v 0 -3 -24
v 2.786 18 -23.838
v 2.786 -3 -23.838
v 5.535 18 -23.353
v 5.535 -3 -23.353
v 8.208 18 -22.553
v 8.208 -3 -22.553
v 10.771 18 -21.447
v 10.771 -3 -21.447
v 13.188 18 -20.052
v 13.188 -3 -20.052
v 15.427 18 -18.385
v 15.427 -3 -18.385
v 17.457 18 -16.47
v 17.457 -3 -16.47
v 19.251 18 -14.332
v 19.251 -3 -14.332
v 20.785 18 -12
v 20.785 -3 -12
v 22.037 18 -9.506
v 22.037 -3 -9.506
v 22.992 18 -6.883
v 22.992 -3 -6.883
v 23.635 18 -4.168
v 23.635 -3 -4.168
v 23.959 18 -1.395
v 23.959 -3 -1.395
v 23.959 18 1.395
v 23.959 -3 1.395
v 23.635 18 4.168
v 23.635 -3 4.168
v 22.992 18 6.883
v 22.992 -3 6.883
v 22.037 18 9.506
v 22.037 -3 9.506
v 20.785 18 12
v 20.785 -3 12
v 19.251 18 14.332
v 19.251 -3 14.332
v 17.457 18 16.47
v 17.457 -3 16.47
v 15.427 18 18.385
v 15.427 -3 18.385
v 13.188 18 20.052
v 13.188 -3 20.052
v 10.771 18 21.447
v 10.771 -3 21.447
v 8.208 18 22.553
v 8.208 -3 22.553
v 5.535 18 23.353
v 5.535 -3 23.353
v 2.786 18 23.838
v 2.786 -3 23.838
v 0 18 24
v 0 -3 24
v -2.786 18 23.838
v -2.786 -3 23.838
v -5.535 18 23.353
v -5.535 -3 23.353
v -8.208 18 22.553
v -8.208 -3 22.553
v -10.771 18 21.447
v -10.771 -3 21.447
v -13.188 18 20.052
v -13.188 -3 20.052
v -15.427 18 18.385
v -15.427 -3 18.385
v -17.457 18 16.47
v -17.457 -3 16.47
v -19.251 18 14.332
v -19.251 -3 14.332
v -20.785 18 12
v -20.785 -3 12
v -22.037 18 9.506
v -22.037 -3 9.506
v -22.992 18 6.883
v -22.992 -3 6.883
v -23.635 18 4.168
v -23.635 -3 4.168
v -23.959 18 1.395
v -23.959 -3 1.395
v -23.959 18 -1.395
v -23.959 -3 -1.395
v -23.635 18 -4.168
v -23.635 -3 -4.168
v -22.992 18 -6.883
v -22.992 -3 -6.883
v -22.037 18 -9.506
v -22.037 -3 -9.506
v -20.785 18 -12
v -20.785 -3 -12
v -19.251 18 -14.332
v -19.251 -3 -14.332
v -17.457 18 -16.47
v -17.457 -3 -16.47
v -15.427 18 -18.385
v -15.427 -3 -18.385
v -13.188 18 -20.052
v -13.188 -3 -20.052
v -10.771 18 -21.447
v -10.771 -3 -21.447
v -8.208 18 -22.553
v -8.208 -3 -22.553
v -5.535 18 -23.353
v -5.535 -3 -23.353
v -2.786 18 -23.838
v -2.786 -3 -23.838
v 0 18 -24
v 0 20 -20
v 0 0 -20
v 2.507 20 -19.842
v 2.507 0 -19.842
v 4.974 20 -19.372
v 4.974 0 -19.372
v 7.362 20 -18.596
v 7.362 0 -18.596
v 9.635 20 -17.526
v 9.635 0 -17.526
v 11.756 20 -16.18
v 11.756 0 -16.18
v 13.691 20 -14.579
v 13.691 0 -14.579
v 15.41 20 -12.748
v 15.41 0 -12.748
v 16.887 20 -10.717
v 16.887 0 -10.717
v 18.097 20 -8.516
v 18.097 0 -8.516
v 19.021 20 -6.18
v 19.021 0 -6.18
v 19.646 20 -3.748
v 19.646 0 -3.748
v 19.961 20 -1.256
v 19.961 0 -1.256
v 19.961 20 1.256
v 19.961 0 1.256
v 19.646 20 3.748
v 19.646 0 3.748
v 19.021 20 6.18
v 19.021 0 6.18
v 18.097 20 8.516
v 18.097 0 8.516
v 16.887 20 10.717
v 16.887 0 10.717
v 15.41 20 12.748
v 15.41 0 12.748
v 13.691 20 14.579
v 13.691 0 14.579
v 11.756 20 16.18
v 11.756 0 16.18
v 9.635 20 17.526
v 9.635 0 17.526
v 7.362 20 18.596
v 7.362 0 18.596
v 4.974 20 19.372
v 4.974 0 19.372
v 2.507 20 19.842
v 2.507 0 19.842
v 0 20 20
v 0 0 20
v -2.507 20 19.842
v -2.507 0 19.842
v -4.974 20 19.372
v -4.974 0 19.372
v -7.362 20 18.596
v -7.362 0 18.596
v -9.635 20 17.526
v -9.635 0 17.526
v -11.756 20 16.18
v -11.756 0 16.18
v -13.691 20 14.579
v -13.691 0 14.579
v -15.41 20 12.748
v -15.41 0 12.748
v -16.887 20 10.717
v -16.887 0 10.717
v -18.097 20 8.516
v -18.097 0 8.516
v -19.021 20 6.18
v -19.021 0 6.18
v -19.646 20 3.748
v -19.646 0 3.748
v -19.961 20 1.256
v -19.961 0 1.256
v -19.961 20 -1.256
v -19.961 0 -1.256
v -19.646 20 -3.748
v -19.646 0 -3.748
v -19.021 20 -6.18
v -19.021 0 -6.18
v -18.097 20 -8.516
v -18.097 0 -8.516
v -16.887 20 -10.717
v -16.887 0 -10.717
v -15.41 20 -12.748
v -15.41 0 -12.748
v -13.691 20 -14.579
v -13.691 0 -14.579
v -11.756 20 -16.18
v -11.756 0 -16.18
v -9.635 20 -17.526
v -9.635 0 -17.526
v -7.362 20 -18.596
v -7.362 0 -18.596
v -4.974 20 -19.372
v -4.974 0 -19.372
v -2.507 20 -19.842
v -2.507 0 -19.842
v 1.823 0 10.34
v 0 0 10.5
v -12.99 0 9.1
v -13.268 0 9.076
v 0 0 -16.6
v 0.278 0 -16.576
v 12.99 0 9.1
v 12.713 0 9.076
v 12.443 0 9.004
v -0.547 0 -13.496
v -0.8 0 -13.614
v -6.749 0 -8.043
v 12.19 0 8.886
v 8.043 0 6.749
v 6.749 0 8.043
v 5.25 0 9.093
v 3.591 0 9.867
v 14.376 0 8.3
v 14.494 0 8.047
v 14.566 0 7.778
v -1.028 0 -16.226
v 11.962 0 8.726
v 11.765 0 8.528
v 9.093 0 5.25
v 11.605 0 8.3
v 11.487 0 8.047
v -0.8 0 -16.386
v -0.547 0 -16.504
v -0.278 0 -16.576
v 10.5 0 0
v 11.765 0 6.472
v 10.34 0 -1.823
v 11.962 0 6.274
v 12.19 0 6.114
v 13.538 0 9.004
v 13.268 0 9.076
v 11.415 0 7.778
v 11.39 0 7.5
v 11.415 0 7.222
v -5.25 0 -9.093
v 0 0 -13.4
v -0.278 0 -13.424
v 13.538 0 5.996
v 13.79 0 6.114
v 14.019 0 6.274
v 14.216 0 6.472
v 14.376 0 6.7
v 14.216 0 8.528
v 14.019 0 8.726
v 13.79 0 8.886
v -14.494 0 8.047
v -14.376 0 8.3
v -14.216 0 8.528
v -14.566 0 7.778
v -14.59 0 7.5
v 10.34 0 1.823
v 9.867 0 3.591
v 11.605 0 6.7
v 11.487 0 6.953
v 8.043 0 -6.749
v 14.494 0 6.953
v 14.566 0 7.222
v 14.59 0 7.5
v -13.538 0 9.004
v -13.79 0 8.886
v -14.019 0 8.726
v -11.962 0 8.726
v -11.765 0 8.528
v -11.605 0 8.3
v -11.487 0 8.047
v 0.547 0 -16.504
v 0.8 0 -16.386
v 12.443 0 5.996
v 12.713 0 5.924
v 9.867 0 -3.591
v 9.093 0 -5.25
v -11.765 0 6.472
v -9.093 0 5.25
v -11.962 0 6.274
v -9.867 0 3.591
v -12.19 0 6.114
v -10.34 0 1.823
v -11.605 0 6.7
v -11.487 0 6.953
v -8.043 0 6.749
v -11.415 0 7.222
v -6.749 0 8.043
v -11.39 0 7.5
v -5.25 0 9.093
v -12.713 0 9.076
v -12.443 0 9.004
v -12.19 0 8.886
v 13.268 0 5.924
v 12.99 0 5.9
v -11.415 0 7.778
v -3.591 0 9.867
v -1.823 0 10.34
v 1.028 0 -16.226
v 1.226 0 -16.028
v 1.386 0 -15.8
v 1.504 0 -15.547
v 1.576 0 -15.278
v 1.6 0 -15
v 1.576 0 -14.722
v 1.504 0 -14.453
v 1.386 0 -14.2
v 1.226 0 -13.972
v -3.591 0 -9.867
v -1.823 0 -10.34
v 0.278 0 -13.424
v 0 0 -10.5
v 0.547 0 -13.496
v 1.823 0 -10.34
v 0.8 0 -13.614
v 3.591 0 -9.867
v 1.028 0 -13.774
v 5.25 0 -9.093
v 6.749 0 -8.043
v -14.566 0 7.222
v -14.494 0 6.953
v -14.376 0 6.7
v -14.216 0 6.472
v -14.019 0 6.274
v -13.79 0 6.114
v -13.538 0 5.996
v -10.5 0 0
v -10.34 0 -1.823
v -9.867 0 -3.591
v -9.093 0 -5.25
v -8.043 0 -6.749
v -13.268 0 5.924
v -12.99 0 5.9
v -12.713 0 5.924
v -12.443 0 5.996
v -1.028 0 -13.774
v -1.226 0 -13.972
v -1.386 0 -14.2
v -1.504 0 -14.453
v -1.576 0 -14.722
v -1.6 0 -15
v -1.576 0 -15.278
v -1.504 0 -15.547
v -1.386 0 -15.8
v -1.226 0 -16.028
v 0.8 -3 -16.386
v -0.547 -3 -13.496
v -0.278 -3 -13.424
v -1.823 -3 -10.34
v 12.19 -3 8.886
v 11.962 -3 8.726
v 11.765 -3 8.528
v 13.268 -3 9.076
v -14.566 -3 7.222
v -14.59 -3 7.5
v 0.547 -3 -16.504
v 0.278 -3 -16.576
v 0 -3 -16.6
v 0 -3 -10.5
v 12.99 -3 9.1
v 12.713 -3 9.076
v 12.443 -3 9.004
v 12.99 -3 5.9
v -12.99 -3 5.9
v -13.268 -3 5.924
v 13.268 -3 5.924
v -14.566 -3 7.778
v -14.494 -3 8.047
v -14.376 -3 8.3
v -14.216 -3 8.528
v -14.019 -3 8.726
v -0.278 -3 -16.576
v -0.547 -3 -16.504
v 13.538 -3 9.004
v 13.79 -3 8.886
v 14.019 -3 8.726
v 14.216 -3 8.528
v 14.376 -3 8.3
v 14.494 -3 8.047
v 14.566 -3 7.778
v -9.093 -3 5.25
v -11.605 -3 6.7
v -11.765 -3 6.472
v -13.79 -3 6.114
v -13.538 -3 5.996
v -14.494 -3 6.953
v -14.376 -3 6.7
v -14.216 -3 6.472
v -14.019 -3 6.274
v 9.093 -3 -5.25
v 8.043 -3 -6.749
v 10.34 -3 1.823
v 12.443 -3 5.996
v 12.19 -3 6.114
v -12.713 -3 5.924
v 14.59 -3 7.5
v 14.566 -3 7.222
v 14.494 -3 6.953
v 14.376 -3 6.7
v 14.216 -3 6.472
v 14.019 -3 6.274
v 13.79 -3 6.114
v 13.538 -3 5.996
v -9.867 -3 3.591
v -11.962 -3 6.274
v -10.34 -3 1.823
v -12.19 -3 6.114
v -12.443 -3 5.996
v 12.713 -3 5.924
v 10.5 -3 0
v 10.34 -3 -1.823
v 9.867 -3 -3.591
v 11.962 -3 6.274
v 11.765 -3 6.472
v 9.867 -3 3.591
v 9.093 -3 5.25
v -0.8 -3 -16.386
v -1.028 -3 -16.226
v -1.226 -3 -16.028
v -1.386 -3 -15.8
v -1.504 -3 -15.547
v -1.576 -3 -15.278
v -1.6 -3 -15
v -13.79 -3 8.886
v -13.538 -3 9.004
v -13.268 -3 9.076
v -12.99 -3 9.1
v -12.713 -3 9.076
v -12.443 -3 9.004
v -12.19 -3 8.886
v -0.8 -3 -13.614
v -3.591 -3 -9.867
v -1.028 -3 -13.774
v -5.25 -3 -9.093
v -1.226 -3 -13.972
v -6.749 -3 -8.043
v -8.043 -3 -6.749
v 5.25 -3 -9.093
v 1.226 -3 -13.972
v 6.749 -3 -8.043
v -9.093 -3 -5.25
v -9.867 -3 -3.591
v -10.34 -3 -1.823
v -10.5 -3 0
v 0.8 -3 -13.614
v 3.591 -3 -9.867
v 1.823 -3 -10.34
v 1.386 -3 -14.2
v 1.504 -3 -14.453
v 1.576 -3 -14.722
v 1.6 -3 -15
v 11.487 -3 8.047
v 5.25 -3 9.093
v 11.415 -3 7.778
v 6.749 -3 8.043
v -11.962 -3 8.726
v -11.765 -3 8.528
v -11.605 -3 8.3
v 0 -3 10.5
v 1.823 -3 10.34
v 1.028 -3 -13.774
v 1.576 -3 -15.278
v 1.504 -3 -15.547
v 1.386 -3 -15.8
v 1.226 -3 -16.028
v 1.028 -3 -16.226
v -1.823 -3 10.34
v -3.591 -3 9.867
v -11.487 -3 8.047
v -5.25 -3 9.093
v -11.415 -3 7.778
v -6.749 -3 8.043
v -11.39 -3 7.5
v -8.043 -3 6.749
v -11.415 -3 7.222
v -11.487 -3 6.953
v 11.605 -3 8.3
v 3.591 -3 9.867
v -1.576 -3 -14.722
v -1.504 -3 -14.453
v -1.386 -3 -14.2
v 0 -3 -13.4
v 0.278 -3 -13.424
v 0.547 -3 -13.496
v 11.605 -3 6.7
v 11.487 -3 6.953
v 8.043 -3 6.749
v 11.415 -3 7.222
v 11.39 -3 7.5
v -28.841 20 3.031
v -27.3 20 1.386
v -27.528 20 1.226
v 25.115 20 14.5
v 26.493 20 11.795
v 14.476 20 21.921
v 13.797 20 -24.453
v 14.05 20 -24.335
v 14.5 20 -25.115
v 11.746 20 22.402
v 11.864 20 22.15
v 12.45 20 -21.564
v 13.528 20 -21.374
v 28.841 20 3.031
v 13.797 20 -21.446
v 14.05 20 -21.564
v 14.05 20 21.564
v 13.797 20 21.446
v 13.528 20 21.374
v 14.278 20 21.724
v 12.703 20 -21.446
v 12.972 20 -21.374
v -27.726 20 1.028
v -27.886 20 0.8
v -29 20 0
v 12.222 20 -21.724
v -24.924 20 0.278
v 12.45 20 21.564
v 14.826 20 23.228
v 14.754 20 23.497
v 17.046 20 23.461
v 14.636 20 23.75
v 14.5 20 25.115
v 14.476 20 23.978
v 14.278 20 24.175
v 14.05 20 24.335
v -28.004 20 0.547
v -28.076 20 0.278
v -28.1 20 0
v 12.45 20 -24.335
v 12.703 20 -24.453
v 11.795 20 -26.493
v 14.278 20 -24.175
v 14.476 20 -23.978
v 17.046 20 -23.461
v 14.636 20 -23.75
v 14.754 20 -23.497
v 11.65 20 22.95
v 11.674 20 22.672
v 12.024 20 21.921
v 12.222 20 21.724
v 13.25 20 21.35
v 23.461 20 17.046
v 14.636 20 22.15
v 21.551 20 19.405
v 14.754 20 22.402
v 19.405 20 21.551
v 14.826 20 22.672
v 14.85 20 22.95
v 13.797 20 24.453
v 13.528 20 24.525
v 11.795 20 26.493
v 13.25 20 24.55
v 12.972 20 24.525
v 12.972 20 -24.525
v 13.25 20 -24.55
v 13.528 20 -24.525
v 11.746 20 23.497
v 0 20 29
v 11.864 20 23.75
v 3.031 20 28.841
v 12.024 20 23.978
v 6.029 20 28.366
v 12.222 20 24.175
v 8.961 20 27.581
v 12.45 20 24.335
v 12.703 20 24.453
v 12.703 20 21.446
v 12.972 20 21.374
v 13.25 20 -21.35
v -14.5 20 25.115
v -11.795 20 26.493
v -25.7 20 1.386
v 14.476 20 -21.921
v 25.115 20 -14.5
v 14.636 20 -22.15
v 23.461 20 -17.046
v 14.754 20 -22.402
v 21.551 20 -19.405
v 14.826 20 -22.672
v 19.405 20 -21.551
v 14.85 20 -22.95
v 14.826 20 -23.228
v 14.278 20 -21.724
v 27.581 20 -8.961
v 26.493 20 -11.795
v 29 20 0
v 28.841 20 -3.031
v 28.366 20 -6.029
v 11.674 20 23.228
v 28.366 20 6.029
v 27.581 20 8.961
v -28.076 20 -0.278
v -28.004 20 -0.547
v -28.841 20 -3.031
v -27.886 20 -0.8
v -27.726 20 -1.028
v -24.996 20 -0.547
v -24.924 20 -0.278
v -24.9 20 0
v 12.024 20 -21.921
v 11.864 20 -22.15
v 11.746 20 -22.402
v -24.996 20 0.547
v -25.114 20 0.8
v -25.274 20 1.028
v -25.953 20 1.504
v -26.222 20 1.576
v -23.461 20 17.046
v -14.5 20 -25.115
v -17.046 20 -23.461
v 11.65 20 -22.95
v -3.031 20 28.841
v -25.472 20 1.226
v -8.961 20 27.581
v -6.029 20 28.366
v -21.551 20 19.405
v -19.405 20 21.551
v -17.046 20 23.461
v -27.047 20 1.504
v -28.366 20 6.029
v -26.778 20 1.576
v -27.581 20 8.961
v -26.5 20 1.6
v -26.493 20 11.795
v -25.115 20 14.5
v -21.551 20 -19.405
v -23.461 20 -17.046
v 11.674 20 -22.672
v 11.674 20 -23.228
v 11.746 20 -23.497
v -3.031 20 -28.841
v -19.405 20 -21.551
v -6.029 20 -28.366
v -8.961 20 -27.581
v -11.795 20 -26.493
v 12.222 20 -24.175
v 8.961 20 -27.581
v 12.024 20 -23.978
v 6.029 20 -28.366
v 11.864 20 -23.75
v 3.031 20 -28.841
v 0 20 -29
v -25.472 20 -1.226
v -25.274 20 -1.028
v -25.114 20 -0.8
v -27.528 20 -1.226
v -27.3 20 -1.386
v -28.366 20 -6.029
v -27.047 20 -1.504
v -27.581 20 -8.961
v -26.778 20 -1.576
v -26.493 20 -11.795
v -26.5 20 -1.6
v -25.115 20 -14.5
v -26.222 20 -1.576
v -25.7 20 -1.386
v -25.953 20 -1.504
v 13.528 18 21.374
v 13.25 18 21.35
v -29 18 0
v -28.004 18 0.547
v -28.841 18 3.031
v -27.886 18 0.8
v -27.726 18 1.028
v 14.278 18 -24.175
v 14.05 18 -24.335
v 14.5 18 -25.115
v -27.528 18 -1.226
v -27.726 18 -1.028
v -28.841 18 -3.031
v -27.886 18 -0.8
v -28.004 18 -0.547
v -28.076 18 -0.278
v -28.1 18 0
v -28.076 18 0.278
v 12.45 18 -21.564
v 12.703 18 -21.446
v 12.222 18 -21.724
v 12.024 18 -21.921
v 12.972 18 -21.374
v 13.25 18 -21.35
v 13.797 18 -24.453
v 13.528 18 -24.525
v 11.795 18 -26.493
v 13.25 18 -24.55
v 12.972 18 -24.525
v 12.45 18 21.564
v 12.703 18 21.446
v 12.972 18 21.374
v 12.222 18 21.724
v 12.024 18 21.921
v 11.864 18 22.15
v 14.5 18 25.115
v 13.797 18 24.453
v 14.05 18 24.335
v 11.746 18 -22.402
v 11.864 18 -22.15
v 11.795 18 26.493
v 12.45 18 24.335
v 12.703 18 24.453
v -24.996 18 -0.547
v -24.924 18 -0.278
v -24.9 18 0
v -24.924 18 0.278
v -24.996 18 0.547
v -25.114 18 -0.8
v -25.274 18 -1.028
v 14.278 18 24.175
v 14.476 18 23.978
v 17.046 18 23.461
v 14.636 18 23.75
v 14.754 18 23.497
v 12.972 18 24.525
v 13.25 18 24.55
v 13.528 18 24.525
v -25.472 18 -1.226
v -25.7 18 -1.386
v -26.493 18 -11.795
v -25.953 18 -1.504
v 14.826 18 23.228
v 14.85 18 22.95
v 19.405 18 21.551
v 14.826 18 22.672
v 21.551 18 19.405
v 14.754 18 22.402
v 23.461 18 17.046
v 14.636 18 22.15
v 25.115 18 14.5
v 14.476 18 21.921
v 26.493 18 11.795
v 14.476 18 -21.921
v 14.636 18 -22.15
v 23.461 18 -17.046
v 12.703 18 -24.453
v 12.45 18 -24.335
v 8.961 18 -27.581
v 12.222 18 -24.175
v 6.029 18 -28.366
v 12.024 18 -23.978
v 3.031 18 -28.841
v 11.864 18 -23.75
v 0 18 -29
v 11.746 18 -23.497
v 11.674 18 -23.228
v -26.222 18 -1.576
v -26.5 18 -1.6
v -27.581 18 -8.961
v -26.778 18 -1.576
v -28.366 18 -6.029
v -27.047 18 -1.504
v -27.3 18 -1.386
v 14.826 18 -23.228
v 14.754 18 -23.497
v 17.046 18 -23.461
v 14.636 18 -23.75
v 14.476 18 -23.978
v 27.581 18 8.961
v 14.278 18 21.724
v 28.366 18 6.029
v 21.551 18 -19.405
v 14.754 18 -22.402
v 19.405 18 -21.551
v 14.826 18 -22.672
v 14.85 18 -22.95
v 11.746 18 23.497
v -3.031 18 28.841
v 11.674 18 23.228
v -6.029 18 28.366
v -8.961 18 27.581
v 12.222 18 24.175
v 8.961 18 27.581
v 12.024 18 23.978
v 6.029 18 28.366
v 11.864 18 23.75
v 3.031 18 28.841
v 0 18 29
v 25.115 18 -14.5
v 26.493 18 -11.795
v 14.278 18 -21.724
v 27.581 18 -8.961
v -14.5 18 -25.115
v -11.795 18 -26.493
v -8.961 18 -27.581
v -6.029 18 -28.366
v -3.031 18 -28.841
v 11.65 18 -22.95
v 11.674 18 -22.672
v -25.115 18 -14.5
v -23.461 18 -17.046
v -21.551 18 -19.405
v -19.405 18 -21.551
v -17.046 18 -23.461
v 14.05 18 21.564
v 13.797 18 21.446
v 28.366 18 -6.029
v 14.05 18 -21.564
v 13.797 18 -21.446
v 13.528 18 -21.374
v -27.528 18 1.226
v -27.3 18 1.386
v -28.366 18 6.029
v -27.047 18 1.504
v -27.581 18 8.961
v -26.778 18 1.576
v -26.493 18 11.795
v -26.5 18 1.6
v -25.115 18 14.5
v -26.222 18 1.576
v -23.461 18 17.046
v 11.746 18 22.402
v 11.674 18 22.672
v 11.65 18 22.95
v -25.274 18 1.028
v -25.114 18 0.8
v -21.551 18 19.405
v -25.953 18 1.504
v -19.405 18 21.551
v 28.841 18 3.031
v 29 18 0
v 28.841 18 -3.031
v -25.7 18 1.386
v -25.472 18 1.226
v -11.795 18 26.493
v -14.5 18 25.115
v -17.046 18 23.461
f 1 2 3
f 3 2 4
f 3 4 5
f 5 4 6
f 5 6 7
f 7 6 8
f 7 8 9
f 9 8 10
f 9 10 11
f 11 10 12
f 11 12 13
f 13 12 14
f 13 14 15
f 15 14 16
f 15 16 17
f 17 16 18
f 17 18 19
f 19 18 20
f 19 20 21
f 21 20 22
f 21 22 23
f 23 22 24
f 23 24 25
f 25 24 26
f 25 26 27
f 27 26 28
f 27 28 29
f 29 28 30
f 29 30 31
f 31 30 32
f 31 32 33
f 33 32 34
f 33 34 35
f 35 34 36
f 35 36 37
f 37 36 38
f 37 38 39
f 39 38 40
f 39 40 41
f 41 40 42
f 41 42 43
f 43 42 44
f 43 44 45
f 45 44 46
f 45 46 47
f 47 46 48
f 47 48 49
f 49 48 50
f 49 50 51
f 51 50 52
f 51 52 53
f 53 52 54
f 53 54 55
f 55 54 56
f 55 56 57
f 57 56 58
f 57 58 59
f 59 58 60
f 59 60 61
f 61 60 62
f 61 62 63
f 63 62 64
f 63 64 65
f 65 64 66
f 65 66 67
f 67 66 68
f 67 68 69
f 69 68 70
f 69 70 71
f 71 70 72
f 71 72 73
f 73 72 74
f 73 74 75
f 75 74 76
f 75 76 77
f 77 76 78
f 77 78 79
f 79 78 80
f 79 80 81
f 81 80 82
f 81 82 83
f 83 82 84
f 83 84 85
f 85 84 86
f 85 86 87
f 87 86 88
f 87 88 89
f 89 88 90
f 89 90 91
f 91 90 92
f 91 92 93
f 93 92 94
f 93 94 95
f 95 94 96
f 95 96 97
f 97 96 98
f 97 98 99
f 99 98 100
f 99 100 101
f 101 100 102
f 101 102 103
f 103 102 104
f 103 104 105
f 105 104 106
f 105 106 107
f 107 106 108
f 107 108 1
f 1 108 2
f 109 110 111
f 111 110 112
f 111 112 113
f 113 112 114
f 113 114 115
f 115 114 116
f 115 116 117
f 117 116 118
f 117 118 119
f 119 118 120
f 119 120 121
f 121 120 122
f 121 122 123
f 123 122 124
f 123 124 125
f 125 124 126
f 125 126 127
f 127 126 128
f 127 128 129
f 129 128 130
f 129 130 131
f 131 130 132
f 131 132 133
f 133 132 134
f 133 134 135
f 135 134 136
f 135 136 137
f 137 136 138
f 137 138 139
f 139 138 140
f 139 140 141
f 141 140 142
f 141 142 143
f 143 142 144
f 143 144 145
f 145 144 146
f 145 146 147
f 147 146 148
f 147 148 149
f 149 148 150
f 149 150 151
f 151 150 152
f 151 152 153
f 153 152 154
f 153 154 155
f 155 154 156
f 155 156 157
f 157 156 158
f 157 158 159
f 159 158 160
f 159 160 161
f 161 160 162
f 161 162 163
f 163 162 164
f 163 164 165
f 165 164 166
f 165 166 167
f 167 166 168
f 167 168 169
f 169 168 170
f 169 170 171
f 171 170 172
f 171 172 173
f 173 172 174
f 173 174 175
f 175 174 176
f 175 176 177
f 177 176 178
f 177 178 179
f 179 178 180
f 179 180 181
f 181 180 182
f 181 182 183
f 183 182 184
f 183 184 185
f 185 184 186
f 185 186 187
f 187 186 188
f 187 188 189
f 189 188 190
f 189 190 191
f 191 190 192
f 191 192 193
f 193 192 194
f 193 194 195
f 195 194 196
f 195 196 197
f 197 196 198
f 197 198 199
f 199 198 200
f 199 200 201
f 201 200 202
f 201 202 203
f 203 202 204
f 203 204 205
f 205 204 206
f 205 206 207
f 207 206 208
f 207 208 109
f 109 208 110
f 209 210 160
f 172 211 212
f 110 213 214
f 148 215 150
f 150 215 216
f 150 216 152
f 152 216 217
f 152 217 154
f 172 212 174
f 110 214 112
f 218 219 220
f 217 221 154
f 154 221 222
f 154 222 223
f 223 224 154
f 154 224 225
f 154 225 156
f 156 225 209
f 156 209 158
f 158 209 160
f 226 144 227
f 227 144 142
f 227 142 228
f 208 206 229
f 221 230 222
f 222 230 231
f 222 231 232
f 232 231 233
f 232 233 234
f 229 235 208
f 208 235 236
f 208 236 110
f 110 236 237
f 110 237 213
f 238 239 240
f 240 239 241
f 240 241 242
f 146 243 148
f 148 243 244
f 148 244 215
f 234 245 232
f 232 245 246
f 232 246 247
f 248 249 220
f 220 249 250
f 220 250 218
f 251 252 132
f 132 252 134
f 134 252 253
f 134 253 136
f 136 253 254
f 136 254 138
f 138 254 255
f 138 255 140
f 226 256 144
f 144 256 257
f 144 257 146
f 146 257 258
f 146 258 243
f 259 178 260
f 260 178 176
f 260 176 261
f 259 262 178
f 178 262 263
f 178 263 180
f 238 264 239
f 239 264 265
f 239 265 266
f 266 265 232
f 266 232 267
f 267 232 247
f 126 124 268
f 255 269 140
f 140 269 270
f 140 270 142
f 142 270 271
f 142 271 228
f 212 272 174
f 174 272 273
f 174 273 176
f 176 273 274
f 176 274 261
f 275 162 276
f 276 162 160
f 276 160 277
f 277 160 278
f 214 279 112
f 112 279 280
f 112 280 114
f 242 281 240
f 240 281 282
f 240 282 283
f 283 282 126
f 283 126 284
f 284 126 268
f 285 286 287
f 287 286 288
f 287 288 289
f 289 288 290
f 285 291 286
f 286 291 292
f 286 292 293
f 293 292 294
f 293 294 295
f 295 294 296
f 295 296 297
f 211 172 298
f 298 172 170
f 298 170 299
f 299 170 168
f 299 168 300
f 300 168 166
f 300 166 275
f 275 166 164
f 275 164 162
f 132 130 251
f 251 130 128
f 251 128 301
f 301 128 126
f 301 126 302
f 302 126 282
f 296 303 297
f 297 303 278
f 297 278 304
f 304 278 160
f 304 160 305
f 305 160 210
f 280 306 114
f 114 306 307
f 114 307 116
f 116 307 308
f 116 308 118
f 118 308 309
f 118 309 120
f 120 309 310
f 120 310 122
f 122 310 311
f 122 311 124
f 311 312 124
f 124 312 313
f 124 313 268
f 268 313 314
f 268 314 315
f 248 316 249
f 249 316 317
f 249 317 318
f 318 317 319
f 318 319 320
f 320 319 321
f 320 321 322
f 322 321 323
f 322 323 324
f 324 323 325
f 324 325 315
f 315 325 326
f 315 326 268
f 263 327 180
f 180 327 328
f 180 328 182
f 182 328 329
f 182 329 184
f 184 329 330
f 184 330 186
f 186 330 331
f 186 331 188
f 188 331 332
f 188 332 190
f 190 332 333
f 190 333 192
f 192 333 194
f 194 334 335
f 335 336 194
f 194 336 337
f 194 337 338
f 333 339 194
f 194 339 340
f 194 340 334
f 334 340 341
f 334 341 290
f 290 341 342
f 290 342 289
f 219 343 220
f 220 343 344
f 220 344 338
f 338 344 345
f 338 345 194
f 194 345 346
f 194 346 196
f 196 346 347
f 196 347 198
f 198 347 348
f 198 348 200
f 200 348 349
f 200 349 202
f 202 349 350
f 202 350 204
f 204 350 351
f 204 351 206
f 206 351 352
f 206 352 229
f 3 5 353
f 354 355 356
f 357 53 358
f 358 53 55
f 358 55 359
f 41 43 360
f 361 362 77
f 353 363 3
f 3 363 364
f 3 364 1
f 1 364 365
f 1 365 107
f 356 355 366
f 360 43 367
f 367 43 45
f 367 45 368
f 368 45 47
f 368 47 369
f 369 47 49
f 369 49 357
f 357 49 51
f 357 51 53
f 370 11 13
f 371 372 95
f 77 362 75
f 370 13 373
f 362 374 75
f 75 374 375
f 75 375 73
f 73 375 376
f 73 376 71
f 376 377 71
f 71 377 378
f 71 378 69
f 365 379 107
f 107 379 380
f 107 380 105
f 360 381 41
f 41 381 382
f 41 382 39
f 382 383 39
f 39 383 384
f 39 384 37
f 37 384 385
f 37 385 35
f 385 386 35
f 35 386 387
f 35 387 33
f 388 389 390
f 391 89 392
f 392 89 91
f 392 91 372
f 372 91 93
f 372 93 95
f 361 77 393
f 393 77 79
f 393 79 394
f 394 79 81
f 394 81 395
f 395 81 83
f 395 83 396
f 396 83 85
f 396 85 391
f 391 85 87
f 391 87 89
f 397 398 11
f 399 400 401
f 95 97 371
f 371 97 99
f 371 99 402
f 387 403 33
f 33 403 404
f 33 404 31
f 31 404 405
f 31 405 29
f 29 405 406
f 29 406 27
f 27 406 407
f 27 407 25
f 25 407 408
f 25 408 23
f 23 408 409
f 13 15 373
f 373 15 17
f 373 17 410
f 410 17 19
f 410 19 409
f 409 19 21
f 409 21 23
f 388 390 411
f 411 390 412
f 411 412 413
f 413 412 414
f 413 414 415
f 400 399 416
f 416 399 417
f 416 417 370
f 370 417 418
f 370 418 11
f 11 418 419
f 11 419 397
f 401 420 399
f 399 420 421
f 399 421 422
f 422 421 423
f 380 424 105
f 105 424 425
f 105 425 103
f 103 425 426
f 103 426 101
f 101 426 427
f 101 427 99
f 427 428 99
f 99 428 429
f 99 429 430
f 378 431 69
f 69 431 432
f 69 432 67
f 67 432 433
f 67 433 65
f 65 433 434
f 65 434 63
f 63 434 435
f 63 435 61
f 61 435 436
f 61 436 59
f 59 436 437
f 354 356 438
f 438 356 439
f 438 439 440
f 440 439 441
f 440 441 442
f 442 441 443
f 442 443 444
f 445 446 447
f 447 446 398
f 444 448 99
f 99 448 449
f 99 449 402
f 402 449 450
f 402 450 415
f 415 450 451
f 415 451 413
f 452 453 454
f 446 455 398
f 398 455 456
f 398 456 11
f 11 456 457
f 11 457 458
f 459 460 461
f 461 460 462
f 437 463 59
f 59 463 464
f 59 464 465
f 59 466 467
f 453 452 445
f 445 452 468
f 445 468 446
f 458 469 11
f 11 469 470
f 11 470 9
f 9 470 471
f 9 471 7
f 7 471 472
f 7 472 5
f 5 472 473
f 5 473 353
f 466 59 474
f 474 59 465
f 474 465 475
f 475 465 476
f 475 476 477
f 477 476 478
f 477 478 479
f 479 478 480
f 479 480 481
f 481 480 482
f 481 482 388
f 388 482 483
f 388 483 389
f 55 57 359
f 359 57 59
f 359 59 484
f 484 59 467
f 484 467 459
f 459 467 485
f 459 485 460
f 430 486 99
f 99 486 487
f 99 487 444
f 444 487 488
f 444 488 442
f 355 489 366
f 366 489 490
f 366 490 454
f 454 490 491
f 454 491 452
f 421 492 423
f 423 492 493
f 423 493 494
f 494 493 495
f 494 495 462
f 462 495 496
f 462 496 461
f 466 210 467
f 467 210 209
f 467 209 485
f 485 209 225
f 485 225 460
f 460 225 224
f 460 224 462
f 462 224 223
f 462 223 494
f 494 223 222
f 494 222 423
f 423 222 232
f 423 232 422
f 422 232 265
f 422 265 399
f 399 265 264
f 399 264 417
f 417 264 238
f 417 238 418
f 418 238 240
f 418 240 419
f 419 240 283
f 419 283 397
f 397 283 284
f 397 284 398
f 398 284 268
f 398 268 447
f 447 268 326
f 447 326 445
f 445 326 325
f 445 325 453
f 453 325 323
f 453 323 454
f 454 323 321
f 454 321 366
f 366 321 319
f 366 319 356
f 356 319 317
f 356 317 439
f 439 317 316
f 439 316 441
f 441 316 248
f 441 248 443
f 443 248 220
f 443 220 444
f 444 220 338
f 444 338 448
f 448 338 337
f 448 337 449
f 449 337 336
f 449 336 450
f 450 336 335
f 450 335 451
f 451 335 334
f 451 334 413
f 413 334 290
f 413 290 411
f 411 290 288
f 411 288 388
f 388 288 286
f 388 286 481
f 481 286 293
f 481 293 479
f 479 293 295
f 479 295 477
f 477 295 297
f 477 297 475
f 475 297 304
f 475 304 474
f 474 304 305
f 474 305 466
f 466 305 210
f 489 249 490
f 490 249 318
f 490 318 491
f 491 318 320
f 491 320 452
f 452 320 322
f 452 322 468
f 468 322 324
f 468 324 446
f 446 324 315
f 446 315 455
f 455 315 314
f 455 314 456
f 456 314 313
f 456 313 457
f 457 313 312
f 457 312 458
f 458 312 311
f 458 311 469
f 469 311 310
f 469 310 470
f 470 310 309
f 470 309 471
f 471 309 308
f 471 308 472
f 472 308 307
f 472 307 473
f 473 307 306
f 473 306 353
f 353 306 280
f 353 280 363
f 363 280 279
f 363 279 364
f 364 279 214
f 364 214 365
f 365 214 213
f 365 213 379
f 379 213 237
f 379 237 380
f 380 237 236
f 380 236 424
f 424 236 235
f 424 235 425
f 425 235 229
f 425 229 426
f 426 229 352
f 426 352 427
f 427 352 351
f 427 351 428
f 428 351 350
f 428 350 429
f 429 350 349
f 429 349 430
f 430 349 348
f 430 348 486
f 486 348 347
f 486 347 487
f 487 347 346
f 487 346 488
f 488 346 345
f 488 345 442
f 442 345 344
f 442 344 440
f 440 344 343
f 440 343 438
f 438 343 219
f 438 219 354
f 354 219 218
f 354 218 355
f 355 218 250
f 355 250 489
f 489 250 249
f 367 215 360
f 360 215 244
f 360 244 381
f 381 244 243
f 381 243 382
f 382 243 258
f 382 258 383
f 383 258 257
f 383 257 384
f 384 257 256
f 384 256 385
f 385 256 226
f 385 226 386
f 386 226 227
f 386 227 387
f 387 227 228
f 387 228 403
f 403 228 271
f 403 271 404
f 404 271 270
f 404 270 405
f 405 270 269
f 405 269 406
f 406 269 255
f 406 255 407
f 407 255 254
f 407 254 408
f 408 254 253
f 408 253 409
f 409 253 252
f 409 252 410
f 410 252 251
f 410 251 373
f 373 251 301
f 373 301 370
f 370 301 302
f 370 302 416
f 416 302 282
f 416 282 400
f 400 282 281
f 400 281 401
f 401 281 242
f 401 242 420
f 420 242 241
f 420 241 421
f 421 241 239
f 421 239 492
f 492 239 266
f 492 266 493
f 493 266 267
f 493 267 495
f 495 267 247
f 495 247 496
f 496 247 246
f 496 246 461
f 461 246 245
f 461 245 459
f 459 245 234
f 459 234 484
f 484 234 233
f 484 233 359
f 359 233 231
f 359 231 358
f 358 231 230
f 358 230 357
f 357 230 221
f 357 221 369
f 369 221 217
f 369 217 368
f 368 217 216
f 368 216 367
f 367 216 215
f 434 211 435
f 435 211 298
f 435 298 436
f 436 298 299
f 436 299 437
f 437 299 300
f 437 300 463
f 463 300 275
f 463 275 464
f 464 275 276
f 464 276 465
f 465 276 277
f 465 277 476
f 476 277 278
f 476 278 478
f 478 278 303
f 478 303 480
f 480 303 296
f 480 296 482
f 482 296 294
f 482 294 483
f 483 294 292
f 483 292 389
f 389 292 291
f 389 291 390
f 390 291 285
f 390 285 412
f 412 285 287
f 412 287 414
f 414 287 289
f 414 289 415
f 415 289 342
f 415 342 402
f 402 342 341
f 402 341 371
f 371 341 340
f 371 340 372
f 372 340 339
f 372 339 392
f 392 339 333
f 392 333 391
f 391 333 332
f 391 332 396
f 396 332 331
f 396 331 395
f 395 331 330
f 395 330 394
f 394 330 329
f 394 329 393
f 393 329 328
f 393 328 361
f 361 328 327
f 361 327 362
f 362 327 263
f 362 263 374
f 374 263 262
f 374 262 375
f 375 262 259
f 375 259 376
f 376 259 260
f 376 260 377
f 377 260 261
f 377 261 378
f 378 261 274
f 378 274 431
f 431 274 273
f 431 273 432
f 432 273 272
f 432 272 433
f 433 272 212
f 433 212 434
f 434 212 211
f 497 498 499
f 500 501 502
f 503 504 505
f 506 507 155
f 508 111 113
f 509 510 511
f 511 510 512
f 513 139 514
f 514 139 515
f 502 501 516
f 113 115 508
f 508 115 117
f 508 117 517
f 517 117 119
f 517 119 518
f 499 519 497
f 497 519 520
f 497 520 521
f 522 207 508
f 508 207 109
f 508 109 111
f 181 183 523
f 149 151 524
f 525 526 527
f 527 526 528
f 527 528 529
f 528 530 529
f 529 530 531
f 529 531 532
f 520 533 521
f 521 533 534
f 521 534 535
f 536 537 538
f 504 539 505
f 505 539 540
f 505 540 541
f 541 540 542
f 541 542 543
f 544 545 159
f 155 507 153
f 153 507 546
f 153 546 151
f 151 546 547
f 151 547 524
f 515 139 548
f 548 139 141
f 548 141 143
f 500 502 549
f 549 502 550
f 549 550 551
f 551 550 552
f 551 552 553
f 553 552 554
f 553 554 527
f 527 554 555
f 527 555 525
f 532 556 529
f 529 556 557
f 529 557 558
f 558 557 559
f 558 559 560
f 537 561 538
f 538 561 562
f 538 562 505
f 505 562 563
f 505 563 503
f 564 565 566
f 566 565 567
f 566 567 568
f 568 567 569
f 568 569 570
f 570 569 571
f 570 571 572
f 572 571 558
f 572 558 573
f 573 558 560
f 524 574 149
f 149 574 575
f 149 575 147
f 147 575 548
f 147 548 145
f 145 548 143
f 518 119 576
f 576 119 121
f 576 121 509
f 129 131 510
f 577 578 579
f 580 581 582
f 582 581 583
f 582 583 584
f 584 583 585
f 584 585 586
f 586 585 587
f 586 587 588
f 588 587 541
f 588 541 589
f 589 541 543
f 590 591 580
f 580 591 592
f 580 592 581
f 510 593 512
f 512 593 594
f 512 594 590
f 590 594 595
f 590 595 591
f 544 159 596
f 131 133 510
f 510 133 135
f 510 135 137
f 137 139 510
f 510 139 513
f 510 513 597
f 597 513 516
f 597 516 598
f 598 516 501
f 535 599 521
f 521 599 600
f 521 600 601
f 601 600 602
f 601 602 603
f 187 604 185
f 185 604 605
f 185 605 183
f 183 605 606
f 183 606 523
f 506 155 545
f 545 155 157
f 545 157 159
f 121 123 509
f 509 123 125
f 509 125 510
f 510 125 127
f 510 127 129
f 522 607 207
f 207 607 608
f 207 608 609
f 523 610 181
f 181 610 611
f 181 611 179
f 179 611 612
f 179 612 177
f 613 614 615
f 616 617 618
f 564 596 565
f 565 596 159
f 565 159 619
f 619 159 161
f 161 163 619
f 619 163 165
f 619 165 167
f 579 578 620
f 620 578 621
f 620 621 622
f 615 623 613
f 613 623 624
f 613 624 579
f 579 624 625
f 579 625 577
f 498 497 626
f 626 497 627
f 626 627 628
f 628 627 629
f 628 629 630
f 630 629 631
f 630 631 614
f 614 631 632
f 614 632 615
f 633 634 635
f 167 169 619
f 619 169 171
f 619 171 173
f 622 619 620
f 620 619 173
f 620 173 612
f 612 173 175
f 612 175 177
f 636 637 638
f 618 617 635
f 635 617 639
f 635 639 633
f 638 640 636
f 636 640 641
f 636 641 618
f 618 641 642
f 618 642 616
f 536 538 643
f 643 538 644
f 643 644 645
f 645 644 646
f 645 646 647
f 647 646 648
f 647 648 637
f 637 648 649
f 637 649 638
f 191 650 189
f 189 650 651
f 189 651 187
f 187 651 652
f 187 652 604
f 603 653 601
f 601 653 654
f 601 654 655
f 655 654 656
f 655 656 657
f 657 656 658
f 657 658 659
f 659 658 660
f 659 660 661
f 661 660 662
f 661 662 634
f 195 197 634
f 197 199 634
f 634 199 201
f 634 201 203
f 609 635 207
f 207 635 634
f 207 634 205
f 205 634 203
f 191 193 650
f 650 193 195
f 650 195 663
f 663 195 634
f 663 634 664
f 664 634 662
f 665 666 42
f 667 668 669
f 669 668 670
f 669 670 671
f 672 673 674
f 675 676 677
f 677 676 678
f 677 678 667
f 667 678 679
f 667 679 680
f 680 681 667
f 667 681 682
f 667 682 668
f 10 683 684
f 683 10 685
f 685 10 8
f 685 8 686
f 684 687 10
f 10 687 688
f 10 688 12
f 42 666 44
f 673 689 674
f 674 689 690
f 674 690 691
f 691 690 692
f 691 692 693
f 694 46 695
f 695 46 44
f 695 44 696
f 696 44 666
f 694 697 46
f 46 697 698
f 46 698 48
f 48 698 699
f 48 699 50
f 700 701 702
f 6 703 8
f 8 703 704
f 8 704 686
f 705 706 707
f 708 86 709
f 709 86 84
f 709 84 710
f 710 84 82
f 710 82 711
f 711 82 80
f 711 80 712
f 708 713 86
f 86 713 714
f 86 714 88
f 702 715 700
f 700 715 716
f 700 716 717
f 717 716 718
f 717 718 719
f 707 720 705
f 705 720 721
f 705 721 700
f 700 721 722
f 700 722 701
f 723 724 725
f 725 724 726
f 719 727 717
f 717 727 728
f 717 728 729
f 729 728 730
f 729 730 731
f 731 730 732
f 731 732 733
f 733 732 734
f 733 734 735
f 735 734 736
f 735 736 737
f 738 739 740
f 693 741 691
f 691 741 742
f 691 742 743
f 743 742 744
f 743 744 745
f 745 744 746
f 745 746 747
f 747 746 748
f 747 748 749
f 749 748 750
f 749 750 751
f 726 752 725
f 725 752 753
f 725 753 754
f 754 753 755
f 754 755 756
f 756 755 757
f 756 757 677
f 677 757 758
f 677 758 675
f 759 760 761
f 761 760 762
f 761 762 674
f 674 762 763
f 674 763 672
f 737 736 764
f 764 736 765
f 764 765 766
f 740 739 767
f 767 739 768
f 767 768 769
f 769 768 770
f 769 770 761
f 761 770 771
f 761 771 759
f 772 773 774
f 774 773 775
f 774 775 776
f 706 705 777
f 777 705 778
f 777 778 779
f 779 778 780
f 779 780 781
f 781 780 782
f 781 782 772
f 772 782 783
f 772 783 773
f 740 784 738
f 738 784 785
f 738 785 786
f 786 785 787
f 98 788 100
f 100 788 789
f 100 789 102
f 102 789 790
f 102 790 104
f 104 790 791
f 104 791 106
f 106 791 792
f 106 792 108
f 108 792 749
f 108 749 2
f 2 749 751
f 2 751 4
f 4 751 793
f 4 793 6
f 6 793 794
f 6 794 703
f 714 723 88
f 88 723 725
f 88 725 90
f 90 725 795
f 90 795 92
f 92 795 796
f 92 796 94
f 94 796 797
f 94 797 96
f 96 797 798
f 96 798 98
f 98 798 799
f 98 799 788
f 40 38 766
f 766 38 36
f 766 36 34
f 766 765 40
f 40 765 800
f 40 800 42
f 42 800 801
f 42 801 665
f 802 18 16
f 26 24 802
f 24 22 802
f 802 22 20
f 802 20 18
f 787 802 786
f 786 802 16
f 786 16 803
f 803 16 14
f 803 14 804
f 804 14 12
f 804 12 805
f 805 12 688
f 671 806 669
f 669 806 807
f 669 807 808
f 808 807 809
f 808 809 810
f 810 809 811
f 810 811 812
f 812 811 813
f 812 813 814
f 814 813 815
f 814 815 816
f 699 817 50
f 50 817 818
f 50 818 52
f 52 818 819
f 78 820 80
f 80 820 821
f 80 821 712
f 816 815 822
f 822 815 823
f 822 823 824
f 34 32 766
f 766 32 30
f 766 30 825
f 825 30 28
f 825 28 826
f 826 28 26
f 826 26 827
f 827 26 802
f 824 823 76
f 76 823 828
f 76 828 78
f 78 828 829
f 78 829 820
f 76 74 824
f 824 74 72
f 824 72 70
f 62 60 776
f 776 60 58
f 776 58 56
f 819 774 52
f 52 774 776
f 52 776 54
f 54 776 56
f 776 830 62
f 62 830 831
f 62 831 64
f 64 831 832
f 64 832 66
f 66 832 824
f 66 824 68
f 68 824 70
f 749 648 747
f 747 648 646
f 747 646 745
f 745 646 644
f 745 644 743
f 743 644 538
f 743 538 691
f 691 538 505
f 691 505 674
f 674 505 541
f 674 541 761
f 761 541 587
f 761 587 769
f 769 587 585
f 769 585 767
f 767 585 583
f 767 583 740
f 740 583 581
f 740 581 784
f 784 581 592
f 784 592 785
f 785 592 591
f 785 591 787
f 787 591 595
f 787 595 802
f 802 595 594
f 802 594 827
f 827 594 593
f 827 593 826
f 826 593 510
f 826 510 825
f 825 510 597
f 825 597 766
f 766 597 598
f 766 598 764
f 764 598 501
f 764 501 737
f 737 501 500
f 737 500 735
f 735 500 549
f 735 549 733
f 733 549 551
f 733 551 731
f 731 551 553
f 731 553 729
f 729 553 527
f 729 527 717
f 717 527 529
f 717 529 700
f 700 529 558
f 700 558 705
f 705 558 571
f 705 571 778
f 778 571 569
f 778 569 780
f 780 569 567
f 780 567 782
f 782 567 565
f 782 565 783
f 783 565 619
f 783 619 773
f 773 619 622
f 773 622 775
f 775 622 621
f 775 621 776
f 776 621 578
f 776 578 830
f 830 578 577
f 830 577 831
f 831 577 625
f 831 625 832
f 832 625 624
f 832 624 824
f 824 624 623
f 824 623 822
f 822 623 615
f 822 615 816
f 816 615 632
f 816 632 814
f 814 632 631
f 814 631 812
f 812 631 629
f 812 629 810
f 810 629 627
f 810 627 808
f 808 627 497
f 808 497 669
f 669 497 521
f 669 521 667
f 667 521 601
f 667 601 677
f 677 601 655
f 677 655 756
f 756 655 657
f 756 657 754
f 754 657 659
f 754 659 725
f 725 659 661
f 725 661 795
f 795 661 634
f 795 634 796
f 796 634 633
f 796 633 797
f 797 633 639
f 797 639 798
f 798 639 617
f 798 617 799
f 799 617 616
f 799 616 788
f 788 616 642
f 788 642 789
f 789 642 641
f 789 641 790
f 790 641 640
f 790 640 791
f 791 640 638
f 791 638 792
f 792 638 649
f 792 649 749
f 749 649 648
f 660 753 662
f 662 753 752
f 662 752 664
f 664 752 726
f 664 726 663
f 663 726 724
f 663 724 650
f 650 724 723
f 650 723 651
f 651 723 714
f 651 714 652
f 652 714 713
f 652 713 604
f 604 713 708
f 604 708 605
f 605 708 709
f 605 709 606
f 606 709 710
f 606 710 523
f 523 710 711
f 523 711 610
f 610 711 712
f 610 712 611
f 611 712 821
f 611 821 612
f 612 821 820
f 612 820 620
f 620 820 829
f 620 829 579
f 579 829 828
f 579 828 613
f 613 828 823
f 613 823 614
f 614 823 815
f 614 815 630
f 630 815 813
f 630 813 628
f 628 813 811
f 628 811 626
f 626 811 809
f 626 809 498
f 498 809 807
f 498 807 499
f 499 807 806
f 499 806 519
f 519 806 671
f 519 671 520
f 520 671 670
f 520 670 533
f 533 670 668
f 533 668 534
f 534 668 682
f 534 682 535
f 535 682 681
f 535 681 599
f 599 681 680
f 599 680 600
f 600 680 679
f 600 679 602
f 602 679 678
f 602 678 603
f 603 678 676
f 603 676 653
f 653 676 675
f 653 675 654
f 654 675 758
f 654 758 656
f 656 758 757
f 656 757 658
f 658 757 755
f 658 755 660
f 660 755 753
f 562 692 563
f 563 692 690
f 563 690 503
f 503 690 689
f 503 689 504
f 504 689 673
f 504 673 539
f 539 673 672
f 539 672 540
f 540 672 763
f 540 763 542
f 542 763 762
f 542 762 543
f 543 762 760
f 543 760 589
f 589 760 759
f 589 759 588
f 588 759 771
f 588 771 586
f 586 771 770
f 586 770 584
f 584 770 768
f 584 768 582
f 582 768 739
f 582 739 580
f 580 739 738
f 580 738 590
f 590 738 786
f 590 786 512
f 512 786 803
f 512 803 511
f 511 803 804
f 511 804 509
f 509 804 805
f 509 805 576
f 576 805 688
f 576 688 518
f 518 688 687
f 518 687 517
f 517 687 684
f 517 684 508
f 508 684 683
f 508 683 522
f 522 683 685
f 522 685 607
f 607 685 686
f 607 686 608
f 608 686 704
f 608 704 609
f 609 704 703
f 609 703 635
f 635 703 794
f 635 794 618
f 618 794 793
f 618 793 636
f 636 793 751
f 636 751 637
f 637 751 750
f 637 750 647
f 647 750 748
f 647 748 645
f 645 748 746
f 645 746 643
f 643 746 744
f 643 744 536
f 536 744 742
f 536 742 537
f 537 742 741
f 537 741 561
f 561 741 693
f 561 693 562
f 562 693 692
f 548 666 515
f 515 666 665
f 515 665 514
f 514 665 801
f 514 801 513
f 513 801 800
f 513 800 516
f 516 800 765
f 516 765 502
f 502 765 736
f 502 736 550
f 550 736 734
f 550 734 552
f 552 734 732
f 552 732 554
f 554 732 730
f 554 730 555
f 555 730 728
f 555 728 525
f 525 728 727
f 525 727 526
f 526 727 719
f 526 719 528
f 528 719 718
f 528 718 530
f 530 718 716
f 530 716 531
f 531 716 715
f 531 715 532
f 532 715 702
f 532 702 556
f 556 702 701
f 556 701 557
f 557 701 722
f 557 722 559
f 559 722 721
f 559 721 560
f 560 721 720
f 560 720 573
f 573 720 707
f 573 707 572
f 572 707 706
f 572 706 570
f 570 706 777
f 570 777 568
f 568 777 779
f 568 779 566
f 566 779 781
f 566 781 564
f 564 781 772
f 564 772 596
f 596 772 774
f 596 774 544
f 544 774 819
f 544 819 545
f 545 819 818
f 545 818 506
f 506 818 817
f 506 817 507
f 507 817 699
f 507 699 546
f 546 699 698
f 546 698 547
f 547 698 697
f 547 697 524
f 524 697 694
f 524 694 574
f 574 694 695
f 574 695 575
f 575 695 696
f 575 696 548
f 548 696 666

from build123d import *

# Parameters (mm, degrees)
SKETCH1_R           = 24
SKETCH1_R_2         = 20
BOSS_EXTRUDE1_DEPTH = 18
BOSS_EXTRUDE2_START = -3
SKETCH2_R           = 24
SKETCH2_R_2         = 10.5
SKETCH2_R_3         = 1.6
BOSS_EXTRUDE2_DEPTH = 3
SKETCH3_R           = 29
SKETCH3_R_2         = 20
SKETCH3_R_3         = 1.6
BOSS_EXTRUDE3_DEPTH = 2


with BuildPart() as part:
    # Sketch1 → Boss-Extrude1 (new body)
    with BuildSketch(Plane(origin=(0, 0, 0), x_dir=(1, 0, 0), z_dir=(0, 1, 0))):
        with Locations(Location((0, 0, 0), (0, 0, 270))):
            Circle(SKETCH1_R)
        with Locations(Location((0, 0, 0), (0, 0, 270))):
            Circle(SKETCH1_R_2, mode=Mode.SUBTRACT)
    extrude(amount=BOSS_EXTRUDE1_DEPTH)

    # Sketch2 → Boss-Extrude2 (add)
    with BuildSketch(Plane(origin=(0, 0, 0), x_dir=(1, 0, 0), z_dir=(0, 1, 0)).offset(BOSS_EXTRUDE2_START)):
        with Locations(Location((0, 0, 0), (0, 0, 270))):
            Circle(SKETCH2_R)
        with Locations(Location((0, 0, 0), (0, 0, 270))):
            Circle(SKETCH2_R_2, mode=Mode.SUBTRACT)
        with Locations(Location((0, 15, 0), (0, 0, 270))):
            Circle(SKETCH2_R_3, mode=Mode.SUBTRACT)
        with Locations(Location((12.990381057, -7.5, 0), (0, 0, 270))):
            Circle(SKETCH2_R_3, mode=Mode.SUBTRACT)
        with Locations(Location((-12.990381057, -7.5, 0), (0, 0, 270))):
            Circle(SKETCH2_R_3, mode=Mode.SUBTRACT)
    extrude(amount=BOSS_EXTRUDE2_DEPTH)

    # Sketch3 → Boss-Extrude3 (add)
    with BuildSketch(Plane(origin=(0, 18, 0), x_dir=(1, 0, 0), z_dir=(0, 1, 0))):
        with Locations(Location((0, 0, 0), (0, 0, 270))):
            Circle(SKETCH3_R)
        with Locations(Location((0, 0, 0), (0, 0, 270))):
            Circle(SKETCH3_R_2, mode=Mode.SUBTRACT)
        with Locations(Location((-26.5, 0, 0), (0, 0, 270))):
            Circle(SKETCH3_R_3, mode=Mode.SUBTRACT)
        with Locations(Location((13.25, 22.9496732, 0), (0, 0, 270))):
            Circle(SKETCH3_R_3, mode=Mode.SUBTRACT)
        with Locations(Location((13.25, -22.9496732, 0), (0, 0, 270))):
            Circle(SKETCH3_R_3, mode=Mode.SUBTRACT)
    extrude(amount=BOSS_EXTRUDE3_DEPTH)


solid = part.part
